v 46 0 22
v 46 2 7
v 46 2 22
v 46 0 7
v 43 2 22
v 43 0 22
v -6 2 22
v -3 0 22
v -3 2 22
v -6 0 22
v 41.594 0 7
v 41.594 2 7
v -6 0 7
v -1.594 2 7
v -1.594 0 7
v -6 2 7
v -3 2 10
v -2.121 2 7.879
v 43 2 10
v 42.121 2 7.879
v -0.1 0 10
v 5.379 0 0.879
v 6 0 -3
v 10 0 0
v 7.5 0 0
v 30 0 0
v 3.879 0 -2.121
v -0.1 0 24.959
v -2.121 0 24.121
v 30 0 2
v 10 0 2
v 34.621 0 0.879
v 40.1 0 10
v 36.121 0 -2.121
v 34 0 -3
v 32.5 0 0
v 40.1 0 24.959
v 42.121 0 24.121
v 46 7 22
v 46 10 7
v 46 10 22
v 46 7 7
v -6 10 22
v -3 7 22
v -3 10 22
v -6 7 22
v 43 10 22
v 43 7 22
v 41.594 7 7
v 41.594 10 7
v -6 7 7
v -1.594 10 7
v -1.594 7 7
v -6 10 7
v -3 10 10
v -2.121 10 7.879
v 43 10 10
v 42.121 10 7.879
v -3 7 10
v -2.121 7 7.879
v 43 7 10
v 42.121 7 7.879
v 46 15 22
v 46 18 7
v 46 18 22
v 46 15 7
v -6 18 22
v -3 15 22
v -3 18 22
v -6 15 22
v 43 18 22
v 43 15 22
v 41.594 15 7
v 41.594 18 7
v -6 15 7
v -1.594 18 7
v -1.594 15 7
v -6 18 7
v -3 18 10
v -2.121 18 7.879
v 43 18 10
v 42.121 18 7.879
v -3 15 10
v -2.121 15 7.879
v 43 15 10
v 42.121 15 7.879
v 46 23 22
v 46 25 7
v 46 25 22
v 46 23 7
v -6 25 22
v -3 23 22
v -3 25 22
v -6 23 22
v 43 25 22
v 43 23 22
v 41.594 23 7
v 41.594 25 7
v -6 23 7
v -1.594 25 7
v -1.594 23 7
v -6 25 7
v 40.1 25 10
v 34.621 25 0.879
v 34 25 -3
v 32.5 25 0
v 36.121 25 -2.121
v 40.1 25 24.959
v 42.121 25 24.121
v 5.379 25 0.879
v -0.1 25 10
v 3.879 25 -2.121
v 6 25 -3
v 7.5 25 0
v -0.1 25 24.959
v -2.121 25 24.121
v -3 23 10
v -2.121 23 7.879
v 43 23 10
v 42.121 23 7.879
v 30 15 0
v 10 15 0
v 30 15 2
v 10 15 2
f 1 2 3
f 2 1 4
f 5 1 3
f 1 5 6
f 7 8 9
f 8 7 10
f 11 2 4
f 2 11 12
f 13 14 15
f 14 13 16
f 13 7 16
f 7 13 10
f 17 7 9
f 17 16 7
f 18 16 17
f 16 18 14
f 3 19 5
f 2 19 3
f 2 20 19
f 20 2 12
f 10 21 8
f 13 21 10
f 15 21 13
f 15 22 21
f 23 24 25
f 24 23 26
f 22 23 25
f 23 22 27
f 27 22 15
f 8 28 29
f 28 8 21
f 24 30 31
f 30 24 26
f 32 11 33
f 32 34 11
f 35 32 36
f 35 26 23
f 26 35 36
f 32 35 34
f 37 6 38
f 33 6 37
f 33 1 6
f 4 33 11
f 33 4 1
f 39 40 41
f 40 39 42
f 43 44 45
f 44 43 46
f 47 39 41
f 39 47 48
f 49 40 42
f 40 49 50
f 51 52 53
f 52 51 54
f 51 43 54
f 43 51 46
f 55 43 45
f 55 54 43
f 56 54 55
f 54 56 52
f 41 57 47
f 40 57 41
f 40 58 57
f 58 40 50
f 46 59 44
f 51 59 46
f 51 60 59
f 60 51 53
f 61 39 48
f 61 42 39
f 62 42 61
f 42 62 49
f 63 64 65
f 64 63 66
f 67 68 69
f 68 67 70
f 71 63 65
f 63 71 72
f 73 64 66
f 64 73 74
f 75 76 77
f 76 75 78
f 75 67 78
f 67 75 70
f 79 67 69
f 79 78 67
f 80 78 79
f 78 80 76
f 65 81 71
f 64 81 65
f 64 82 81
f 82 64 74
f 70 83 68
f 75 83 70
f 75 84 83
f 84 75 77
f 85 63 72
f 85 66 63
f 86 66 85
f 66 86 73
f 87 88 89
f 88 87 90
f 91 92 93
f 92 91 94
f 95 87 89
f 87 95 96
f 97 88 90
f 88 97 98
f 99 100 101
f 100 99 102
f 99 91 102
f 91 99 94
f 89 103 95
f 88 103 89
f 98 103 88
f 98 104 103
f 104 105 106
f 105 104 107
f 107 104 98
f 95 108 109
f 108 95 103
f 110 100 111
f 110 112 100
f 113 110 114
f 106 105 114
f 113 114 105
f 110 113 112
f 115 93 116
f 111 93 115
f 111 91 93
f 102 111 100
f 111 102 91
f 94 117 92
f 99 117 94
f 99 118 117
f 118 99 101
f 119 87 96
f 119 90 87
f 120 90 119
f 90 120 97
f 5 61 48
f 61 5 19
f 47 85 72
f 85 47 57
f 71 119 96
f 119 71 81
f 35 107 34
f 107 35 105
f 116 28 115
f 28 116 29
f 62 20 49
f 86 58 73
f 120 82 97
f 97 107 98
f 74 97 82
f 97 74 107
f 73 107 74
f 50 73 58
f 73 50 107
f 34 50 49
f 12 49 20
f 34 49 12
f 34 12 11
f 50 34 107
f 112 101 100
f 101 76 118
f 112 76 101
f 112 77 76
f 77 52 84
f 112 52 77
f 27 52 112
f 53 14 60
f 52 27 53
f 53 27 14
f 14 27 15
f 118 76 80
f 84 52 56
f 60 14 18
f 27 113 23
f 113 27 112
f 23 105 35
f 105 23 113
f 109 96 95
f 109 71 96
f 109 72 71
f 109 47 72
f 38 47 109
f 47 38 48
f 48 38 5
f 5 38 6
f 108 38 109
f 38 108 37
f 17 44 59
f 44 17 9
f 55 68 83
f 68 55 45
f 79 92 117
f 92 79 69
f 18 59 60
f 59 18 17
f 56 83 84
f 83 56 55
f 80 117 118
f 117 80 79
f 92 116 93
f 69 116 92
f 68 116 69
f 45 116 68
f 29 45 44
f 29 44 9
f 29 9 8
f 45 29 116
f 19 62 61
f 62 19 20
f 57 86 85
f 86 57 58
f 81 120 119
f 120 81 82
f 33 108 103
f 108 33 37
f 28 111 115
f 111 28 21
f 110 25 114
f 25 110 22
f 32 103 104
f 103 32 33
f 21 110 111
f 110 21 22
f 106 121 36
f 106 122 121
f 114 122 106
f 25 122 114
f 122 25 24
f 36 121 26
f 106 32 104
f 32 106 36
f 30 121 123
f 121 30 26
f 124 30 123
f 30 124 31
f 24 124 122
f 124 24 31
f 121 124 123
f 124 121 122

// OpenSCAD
   union() {
difference() {
    union() {
        hull(){
            translate([0,0,10]) rotate([-90,0,0]) cylinder(35-8-2,3,3,$fn=8);
            translate([40,0,10]) rotate([-90,0,0]) cylinder(35-8-2,3,3,$fn=8);
            #translate([6,0,0]) rotate([-90,0,0]) cylinder(35-8-2,3,3,$fn=8); 
            #translate([40-6,0,0]) rotate([-90,0,0]) cylinder(35-8-2,3,3,$fn=8); 
            translate([40,0,22]) rotate([-90,0,0]) cylinder(35-8-2,3,3,$fn=8);
            translate([0,0,22]) rotate([-90,0,0]) cylinder(35-8-2,3,3,$fn=8);
        }
        translate([0,0,-3]) union() {
            translate([-6,0,10]) cube([52,2,25-10]);
            translate([-6,3+5-1,10]) cube([52,3,25-10]);
            translate([-6,3+5+8-1,10]) cube([52,3,25-10]);
            translate([-6,3+5+8+8-1,10]) cube([52,2,25-10]);
        }
    }

    hull() {
        translate([-0.1,-1,10]) cube([40.2,40,40]);
        #translate([6+1.5,-3,3]) rotate([-90,0,0]) cylinder(35-5,3,3,$fn=8); 
        #translate([40-6-1.5,-3,3]) rotate([-90,0,0]) cylinder(35-5,3,3,$fn=8); 

    }
}
    translate([10,0,-0.5]) cube([20,15,2.5]);
}
